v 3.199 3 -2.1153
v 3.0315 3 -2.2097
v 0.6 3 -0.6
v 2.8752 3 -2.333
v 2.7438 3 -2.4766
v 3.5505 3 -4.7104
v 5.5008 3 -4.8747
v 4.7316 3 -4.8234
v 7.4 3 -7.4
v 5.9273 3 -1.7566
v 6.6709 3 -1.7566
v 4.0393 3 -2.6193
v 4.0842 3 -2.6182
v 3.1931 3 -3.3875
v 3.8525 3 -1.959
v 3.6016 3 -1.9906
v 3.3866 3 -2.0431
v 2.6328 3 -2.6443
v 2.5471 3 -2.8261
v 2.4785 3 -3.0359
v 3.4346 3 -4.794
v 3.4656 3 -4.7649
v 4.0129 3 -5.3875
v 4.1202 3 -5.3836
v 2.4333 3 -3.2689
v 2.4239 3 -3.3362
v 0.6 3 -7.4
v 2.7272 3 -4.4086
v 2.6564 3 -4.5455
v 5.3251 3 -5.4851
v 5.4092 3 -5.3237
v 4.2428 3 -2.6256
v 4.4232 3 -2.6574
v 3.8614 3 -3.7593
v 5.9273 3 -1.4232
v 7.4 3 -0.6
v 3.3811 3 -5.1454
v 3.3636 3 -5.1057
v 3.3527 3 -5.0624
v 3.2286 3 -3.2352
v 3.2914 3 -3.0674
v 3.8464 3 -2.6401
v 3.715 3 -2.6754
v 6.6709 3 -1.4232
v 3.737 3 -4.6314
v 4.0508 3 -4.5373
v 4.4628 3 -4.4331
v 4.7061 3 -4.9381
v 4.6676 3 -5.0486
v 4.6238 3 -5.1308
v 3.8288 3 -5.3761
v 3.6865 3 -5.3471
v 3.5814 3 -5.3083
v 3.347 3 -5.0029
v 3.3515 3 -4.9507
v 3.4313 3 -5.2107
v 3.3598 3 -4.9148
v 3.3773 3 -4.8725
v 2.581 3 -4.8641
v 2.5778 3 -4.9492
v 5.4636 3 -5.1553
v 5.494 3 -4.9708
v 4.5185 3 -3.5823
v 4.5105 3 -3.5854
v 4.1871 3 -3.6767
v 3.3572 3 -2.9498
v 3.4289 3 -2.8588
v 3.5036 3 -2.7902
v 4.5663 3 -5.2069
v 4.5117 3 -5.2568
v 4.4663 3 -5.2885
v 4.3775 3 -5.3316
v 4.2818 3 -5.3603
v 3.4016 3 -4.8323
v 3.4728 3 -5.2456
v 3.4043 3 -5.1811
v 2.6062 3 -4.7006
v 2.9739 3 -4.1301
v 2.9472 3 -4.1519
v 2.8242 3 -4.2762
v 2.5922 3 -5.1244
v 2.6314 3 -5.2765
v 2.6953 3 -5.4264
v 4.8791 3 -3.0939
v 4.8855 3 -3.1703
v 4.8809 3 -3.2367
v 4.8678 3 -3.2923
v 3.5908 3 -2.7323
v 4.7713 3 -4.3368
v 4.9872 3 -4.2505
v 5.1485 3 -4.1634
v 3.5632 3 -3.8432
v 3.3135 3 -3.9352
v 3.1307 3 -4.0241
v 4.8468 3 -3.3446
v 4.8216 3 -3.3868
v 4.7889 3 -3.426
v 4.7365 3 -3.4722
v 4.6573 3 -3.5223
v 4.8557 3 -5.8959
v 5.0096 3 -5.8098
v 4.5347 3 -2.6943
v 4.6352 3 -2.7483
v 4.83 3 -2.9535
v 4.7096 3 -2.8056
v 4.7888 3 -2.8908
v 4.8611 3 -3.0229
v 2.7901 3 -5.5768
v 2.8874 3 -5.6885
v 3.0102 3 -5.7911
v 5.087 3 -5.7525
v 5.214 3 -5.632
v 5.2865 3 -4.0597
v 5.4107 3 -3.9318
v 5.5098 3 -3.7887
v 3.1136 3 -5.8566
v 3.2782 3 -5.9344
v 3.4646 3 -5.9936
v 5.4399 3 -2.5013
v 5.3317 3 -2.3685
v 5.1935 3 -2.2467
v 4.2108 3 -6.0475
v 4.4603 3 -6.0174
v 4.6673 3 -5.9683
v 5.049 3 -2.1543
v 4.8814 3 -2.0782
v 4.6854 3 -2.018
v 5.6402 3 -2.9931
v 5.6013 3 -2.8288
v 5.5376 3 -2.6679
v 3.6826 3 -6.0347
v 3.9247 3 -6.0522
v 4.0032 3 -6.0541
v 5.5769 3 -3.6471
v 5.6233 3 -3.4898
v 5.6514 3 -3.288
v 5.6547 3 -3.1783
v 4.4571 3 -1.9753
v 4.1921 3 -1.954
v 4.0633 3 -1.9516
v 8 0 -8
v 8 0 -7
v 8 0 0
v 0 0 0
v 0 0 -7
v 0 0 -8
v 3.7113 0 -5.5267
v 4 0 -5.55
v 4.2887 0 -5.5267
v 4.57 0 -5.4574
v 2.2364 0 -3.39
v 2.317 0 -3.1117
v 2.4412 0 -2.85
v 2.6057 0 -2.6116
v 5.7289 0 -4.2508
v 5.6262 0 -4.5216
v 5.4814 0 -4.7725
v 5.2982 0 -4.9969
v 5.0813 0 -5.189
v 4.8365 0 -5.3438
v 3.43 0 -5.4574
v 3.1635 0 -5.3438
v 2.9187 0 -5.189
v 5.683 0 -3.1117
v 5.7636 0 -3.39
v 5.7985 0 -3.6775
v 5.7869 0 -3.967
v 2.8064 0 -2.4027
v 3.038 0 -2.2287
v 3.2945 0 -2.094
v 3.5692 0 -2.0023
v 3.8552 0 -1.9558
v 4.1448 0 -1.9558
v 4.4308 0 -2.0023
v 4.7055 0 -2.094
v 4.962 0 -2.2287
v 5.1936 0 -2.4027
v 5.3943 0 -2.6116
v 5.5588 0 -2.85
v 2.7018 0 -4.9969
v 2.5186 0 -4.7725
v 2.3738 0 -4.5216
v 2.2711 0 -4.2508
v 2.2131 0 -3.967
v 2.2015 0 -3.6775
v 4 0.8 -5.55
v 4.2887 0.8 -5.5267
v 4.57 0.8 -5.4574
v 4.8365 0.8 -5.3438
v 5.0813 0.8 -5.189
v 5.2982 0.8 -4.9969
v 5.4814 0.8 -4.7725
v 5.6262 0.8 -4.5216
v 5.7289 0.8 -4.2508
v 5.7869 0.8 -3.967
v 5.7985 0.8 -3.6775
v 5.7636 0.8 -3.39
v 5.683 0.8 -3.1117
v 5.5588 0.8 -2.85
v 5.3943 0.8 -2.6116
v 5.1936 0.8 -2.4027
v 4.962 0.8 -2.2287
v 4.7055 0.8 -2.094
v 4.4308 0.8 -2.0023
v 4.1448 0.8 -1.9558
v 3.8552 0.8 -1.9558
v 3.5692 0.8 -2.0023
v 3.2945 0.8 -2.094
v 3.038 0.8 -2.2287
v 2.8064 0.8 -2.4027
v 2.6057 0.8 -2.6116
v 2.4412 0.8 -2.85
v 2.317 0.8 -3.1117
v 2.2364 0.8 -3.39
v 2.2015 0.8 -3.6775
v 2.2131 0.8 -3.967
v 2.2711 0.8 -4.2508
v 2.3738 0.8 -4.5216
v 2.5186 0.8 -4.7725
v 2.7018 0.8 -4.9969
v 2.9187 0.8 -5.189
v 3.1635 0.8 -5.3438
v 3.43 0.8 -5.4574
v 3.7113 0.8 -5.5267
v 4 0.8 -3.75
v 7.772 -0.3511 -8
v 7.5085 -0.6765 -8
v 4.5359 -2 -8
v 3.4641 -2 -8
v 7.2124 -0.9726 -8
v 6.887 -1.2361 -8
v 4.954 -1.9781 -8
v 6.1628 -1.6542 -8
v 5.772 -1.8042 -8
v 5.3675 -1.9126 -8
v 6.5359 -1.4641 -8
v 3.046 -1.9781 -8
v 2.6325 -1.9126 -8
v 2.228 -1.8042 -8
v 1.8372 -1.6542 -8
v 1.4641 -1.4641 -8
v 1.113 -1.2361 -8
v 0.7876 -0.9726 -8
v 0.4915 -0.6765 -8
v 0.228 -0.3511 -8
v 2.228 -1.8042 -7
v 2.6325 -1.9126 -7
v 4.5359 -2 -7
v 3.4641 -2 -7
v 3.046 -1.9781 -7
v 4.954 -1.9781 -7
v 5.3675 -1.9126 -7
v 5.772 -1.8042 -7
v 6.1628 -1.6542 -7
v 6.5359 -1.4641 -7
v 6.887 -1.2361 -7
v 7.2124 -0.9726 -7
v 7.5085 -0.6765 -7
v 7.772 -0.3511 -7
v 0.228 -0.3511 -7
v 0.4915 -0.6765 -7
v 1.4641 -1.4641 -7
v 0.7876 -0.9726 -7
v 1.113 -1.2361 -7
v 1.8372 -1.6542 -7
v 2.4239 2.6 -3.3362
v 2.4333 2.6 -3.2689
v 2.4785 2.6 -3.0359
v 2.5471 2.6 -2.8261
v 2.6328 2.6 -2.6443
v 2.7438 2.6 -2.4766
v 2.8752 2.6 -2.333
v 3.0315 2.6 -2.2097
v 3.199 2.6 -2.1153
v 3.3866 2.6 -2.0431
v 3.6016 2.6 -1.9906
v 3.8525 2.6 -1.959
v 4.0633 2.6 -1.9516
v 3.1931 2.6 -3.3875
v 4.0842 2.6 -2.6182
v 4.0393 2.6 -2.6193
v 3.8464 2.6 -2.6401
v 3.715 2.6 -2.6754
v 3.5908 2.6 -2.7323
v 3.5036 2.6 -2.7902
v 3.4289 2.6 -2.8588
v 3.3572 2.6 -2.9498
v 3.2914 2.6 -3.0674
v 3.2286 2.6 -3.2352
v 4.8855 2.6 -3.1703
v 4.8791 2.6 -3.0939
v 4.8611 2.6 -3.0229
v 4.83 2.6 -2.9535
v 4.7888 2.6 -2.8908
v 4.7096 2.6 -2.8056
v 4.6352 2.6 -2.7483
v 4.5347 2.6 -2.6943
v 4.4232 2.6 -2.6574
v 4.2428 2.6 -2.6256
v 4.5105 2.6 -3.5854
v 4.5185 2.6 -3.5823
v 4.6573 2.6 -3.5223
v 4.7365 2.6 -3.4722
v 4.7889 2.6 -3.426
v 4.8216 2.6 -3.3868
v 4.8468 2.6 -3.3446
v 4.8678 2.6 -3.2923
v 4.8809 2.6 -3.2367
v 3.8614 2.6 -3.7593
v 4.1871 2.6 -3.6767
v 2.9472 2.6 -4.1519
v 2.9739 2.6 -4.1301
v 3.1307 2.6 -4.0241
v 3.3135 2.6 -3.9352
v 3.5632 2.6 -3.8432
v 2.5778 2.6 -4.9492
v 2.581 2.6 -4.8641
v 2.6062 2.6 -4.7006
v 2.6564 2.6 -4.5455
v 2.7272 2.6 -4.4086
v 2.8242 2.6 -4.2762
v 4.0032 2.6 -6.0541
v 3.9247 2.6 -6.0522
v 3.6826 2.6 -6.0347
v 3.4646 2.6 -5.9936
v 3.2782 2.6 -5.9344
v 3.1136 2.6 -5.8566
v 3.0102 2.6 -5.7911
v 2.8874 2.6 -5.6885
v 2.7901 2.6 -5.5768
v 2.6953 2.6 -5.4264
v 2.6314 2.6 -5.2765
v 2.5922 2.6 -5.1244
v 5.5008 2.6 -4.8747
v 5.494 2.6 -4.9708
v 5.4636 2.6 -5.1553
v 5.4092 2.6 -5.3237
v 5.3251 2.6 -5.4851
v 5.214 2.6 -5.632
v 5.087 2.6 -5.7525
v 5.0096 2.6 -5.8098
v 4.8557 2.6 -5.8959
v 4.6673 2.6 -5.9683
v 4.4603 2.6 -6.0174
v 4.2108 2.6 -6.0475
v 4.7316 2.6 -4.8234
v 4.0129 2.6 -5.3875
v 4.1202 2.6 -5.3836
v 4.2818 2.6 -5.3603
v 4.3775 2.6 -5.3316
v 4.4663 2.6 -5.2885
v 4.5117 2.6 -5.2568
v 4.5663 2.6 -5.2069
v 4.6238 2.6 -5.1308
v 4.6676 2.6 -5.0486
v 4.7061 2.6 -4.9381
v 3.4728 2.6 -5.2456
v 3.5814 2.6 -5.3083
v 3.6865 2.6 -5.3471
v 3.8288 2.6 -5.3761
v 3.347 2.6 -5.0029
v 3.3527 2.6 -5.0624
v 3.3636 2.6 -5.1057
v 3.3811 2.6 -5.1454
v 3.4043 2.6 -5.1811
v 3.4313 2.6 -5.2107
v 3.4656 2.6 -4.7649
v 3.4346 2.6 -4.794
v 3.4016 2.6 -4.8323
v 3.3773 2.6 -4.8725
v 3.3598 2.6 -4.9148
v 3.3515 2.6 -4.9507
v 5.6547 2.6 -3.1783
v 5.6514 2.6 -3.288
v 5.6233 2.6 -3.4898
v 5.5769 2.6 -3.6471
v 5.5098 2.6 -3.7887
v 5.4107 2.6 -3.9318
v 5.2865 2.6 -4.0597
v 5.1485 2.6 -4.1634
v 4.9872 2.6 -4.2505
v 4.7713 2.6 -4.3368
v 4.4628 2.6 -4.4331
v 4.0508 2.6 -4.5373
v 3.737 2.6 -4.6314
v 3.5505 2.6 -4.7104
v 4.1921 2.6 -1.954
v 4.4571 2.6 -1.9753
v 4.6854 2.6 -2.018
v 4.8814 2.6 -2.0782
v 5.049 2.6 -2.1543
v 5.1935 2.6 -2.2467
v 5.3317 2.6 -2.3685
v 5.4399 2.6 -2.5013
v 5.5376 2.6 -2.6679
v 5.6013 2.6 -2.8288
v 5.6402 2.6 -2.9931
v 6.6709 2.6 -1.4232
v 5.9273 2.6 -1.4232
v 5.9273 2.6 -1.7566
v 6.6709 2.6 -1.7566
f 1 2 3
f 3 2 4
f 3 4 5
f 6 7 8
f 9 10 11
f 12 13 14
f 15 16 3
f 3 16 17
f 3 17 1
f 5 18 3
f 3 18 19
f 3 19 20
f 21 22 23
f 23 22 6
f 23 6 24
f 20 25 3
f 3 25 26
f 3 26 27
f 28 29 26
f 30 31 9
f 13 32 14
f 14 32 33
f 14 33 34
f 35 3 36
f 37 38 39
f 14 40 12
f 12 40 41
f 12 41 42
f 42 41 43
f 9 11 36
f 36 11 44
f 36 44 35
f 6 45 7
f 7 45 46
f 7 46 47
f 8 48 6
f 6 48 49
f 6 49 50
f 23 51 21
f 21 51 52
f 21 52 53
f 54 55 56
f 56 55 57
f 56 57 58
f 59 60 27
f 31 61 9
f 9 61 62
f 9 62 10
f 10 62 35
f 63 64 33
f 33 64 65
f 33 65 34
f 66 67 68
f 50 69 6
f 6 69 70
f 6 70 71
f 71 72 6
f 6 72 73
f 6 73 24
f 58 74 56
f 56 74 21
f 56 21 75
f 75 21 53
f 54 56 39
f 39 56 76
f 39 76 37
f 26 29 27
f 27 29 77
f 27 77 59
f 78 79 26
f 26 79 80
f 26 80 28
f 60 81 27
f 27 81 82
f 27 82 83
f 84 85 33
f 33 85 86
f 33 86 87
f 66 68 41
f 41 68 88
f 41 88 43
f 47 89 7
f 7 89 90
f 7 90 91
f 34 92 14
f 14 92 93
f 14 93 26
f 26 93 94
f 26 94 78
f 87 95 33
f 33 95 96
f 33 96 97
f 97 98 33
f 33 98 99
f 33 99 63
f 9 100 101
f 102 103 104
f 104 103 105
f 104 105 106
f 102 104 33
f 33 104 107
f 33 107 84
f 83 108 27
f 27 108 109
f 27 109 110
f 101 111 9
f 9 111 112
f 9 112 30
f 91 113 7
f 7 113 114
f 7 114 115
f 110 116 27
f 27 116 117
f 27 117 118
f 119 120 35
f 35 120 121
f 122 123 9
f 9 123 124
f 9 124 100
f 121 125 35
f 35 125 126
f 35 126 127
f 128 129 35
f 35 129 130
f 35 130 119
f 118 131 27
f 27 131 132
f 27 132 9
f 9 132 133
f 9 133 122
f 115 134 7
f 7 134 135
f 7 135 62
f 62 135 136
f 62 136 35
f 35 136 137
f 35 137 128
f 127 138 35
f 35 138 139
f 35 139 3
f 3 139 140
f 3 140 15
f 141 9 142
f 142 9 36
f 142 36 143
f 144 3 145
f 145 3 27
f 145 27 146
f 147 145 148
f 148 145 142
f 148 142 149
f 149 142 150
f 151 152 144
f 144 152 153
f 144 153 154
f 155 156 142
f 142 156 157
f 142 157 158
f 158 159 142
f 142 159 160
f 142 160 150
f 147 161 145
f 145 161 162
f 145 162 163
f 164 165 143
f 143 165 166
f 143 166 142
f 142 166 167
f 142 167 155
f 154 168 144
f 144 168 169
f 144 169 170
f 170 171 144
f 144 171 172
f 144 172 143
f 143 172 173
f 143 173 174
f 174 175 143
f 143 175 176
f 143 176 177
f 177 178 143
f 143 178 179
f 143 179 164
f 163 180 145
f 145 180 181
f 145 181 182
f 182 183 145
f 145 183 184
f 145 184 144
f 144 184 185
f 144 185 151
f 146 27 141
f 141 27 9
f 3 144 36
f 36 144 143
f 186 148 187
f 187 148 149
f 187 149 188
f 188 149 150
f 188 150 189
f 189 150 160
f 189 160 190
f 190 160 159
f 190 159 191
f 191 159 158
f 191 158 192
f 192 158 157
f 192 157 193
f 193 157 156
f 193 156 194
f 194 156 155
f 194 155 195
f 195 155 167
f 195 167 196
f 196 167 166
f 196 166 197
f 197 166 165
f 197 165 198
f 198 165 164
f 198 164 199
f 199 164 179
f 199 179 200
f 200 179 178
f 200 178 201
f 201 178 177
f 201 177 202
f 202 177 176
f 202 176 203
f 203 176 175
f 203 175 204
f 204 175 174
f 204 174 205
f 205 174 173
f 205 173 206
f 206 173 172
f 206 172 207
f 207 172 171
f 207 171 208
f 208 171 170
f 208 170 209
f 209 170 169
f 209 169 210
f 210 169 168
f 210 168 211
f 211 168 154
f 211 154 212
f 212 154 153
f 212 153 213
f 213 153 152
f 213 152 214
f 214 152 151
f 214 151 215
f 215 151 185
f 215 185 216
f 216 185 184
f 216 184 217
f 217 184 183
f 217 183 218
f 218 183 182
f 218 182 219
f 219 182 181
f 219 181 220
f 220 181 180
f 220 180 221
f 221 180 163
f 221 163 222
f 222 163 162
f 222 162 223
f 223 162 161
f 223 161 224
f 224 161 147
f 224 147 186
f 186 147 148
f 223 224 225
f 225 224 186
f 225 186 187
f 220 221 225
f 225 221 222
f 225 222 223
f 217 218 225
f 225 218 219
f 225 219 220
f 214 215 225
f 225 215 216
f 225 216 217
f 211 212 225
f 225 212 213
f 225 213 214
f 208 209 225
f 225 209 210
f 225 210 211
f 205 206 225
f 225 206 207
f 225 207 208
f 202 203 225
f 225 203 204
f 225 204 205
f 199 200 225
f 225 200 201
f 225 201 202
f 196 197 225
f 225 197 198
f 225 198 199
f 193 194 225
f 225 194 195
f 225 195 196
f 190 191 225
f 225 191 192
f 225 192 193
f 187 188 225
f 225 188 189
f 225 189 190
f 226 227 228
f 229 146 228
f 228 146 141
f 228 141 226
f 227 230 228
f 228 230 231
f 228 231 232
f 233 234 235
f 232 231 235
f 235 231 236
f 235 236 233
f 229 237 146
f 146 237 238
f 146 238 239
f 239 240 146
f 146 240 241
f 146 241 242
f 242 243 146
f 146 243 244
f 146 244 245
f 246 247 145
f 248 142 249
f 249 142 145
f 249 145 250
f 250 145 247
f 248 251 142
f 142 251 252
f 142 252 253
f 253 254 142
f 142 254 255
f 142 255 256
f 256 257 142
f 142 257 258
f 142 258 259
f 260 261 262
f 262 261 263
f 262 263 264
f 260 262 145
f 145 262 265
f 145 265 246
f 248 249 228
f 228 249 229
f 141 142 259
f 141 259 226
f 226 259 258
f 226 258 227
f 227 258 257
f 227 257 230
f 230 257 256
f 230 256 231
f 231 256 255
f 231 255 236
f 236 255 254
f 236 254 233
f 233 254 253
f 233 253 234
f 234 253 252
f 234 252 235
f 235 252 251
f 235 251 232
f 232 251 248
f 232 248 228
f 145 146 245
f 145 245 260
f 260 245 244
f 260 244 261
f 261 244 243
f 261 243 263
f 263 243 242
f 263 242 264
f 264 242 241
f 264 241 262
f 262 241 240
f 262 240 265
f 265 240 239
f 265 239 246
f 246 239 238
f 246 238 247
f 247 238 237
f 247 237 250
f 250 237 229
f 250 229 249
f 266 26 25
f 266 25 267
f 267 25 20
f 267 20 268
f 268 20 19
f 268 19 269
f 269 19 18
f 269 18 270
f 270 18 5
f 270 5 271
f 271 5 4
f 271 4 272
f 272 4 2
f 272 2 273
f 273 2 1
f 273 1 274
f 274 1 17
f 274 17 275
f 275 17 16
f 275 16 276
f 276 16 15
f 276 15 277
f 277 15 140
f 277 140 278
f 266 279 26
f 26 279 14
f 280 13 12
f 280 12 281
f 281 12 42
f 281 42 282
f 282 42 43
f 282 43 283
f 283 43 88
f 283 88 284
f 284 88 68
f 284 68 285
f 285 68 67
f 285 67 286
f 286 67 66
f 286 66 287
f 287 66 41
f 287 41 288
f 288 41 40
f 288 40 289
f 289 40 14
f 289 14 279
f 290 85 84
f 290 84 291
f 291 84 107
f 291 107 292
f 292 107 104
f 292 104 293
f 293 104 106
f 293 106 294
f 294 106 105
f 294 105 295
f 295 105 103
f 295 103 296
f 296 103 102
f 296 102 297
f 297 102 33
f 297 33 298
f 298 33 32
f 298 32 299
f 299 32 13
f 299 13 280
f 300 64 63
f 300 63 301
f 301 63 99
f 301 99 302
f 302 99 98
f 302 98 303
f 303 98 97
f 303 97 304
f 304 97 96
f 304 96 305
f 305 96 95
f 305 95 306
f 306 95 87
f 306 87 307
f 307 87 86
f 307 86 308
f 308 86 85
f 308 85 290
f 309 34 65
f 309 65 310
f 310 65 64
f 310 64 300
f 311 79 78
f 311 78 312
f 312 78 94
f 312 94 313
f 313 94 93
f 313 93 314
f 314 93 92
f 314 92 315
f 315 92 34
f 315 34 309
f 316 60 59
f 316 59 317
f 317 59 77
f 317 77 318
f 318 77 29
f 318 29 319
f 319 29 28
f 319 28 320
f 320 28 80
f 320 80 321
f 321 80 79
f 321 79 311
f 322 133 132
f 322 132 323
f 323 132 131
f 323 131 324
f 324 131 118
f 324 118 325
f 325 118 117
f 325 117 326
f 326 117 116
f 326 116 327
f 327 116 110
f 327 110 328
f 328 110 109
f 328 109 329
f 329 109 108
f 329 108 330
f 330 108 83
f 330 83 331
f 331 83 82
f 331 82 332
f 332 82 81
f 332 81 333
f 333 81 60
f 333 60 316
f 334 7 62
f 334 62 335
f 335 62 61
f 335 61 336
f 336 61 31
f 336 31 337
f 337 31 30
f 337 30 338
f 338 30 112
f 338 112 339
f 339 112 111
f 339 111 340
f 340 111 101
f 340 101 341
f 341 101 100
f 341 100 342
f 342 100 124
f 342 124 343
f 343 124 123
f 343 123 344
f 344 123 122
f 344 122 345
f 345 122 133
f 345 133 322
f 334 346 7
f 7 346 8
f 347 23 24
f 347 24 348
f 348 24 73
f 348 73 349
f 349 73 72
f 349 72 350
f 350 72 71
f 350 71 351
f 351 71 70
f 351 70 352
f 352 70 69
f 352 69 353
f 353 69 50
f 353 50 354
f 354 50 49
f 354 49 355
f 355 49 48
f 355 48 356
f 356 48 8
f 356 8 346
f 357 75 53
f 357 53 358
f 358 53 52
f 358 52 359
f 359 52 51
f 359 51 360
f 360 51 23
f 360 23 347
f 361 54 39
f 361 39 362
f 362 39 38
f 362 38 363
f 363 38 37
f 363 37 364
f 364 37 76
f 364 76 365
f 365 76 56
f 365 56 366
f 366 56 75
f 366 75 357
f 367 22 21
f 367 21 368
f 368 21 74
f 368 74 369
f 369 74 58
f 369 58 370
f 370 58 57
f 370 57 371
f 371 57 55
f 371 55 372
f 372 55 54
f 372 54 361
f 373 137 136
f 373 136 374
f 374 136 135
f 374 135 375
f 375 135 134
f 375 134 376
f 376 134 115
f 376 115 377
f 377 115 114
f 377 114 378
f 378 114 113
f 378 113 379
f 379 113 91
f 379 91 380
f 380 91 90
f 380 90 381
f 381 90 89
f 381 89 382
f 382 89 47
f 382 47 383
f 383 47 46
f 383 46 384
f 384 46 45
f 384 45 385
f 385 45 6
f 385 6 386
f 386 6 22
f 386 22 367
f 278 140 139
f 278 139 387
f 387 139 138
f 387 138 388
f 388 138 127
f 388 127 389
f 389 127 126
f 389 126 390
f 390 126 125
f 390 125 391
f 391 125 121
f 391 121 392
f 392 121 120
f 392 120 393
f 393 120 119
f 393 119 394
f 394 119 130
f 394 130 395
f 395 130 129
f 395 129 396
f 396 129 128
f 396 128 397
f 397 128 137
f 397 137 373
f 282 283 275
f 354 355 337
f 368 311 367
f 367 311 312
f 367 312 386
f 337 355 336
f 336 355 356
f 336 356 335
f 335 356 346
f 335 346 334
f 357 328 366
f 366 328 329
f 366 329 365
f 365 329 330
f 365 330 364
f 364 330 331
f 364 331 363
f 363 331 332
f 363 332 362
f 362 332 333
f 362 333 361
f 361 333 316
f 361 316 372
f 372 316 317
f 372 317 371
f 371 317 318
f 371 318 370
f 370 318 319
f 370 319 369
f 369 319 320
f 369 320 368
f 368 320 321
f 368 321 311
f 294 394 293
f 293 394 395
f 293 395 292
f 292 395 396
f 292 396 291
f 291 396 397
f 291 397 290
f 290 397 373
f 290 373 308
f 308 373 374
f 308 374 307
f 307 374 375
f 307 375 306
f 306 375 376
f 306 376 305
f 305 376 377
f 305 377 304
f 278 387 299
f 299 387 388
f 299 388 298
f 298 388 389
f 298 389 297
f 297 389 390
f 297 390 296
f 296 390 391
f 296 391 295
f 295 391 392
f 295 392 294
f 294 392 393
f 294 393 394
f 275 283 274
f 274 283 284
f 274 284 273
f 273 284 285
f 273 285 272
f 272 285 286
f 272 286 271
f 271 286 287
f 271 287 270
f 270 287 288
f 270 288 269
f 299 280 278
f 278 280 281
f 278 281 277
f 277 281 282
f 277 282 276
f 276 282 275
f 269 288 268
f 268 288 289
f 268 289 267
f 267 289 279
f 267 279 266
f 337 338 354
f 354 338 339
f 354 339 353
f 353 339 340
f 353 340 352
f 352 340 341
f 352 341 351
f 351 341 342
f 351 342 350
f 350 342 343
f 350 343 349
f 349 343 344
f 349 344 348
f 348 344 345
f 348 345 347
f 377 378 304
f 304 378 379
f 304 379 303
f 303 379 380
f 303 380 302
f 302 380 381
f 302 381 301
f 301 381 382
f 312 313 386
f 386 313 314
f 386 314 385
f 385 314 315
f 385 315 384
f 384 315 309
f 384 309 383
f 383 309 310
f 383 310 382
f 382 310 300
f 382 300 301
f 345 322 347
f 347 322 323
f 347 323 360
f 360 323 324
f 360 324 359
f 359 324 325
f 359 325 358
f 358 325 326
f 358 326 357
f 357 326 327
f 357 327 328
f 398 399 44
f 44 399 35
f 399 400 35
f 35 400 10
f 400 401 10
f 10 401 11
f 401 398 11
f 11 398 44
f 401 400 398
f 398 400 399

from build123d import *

# Parameters (mm, degrees)
SKETCH1_W               = 8
SKETCH1_H               = 8
BOSS_EXTRUDE1_DEPTH     = 3
CUT_EXTRUDE1_DEPTH      = 12.704699911
CUT_EXTRUDE1_DEPTH_BACK = 12.704699911
CUT_EXTRUDE2_DEPTH      = 11
SKETCH4_R               = 1.8
CUT_EXTRUDE3_DEPTH      = 0.8
SKETCH5_W               = 8
SKETCH5_H               = 1
BOSS_EXTRUDE2_DEPTH     = 2
FILLET1_R               = 4
CUT_EXTRUDE4_DEPTH      = 0.4
SKETCH7_W               = 0.743589743
SKETCH7_H               = 0.333333333
CUT_EXTRUDE5_DEPTH      = 0.4


with BuildPart() as part:
    # Sketch1 → Boss-Extrude1 (new body)
    with BuildSketch(Plane(origin=(0, 0, 0), x_dir=(1, 0, 0), z_dir=(0, 1, 0))):
        with Locations((4, 4)):
            Rectangle(SKETCH1_W, SKETCH1_H)
    extrude(amount=BOSS_EXTRUDE1_DEPTH)

    # Sketch2 → Cut-Extrude1 (cut, two sides: drawn at the far end of the back side and taken through both)
    with BuildSketch(Plane.XY.offset(-CUT_EXTRUDE1_DEPTH_BACK)):
        Polygon((0, 0), (0.6, 3), (0, 3), align=None)
        Polygon((8, 0), (7.4, 3), (8, 3), align=None)
    extrude(amount=CUT_EXTRUDE1_DEPTH + CUT_EXTRUDE1_DEPTH_BACK, mode=Mode.SUBTRACT)

    # Sketch3 → Cut-Extrude2 (cut)
    with BuildSketch(Plane(origin=(0, 0, 0), x_dir=(0, 0, -1), z_dir=(1, 0, 0))):
        Polygon((0, 0), (0.6, 3), (0, 3), align=None)
        Polygon((8, 3), (7.4, 3), (8, 0), align=None)
    extrude(amount=CUT_EXTRUDE2_DEPTH, mode=Mode.SUBTRACT)

    # Sketch4 → Cut-Extrude3 (cut)
    with BuildSketch(Plane.XZ):
        with Locations(Location((4, -3.75, 0), (0, 0, 270))):
            Circle(SKETCH4_R)
    extrude(amount=-CUT_EXTRUDE3_DEPTH, mode=Mode.SUBTRACT)

    # Sketch5 → Boss-Extrude2 (add)
    with BuildSketch(Plane.XZ):
        with Locations((4, -7.5)):
            Rectangle(SKETCH5_W, SKETCH5_H)
    extrude(amount=BOSS_EXTRUDE2_DEPTH)

    # Fillet1
    # the kernel refuses this fillet: 4 mm, written as the material it takes off along each edge
    with BuildSketch(Plane(origin=(8, -2, -16.660254038), x_dir=(0, 1, 0), z_dir=(0, 0, 1)), Plane(origin=(0, -2, 1.660254038), x_dir=(0, 1, 0), z_dir=(0, 0, -1))) as fillet1_piece_1:
        with BuildLine():
            CenterArc((4, 3.464101615), FILLET1_R, 180, 60)
            Line((0, 3.464101615), (-0.08, 3.464101615))
            Line((-0.08, 3.464101615), (-0.08, 0))
            Line((-0.08, 0), (0, -0.08))
            ThreePointArc((0, -0.08), (1, -0.08), (1.96, -0.069282032))
            Line((1.96, -0.069282032), (2, 0))
        make_face()
    extrude(amount=18.320508076, mode=Mode.SUBTRACT)

    # Sketch6 → Cut-Extrude4 (cut)
    with BuildSketch(Plane(origin=(0, 3, 0), x_dir=(1, 0, 0), z_dir=(0, 1, 0))):
        with BuildLine():
            Line((2.423916505, 3.336189685), (3.193147274, 3.387471736))
            add(Edge.make_bspline(
                [(3.193147274, 3.387471736), (3.199275518, 3.35528983), (3.211179242, 3.292778523), (3.237627081, 3.203691377), (3.266738832, 3.12063689), (3.30152897, 3.044505684), (3.339615284, 2.973890515), (3.38412658, 2.910803039), (3.431957638, 2.853229033), (3.485476185, 2.803236311), (3.543783948, 2.759451994), (3.607171876, 2.722111271), (3.674953108, 2.6897922), (3.747293374, 2.663178469), (3.824938253, 2.64331119), (3.907211345, 2.629176798), (3.994230643, 2.620125524), (4.053701404, 2.618879435), (4.084172915, 2.618240967)],
                knots=[0, 0, 0, 0, 1.204560339, 2.339781841, 3.415289417, 4.440034832, 5.416475564, 6.362424008, 7.275913008, 8.16578645, 9.05021719, 9.95355393, 10.867835453, 11.809845306, 12.784702352, 13.812224031, 14.87903166, 16, 16, 16, 16], degree=3))
            add(Edge.make_bspline(
                [(4.084172915, 2.618240967), (4.116246108, 2.618590883), (4.178630121, 2.619271489), (4.269031453, 2.627715), (4.353560804, 2.639811238), (4.431471751, 2.6589593), (4.504219207, 2.680373377), (4.569996427, 2.709670116), (4.629867843, 2.743459668), (4.683679212, 2.781802056), (4.730640445, 2.824326515), (4.771724475, 2.86872067), (4.807505951, 2.914025405), (4.835668504, 2.962251146), (4.858460082, 3.011447443), (4.873523718, 3.063081907), (4.883700097, 3.1159689), (4.884867031, 3.152113555), (4.885454967, 3.1703243)],
                knots=[0, 0, 0, 0, 1.417779877, 2.757654889, 4.012140507, 5.189587551, 6.302846416, 7.360586765, 8.365575446, 9.33904572, 10.275781718, 11.161696098, 12.012180333, 12.822428111, 13.625933072, 14.403138519, 15.195454004, 16, 16, 16, 16], degree=3))
            add(Edge.make_bspline(
                [(4.885454967, 3.1703243), (4.884733913, 3.193140887), (4.883323278, 3.237778199), (4.866340641, 3.301592127), (4.840872442, 3.360713887), (4.802526135, 3.41427025), (4.750979261, 3.463212961), (4.685226085, 3.508997669), (4.603431212, 3.550186), (4.542750055, 3.573160928), (4.510454967, 3.585388403)],
                knots=[0, 0, 0, 0, 0.90494901, 1.770400303, 2.607161909, 3.452839393, 4.36912122, 5.420987164, 6.627424851, 8, 8, 8, 8], degree=3))
            add(Edge.make_bspline(
                [(4.510454967, 3.585388403), (4.496597999, 3.590031937), (4.465588357, 3.600423411), (4.4126892, 3.615282239), (4.348970759, 3.633836968), (4.273512264, 3.654927379), (4.186339087, 3.676497317), (4.088424838, 3.703069034), (3.978575834, 3.729510064), (3.901725338, 3.749028827), (3.861416505, 3.759266608)],
                knots=[0, 0, 0, 0, 0.521821638, 1.167752076, 1.961721917, 2.891982557, 3.96540661, 5.168436773, 6.514817513, 8, 8, 8, 8], degree=3))
            add(Edge.make_bspline(
                [(3.861416505, 3.759266608), (3.808922441, 3.772373151), (3.707643728, 3.797660082), (3.563197092, 3.84264374), (3.430159098, 3.887337495), (3.309810688, 3.935832618), (3.200824367, 3.984842463), (3.104963023, 4.037807847), (3.02022624, 4.091978089), (2.970848149, 4.132466251), (2.947153685, 4.151894813)],
                knots=[0, 0, 0, 0, 1.293880989, 2.496331788, 3.617634808, 4.64976062, 5.598842568, 6.473791081, 7.267636666, 8, 8, 8, 8], degree=3))
            add(Edge.make_bspline(
                [(2.947153685, 4.151894813), (2.917769469, 4.179407128), (2.860158996, 4.233347566), (2.784323751, 4.321982057), (2.720601495, 4.415610216), (2.668151102, 4.513540942), (2.627765291, 4.616338017), (2.599140348, 4.723313361), (2.580613245, 4.834746169), (2.578722682, 4.91063455), (2.577762659, 4.949170454)],
                knots=[0, 0, 0, 0, 1.064429417, 2.086912298, 3.078678339, 4.055528992, 5.020032834, 5.993708893, 6.981211098, 8, 8, 8, 8], degree=3))
            add(Edge.make_bspline(
                [(2.577762659, 4.949170454), (2.579632311, 4.999035454), (2.583341142, 5.097952729), (2.617353538, 5.24334762), (2.670335558, 5.383642492), (2.731782138, 5.495041815), (2.790819043, 5.579315825), (2.839844896, 5.639790083), (2.893704531, 5.696388175), (2.953135712, 5.747729494), (3.015931612, 5.796821395), (3.084525186, 5.840415592), (3.156971597, 5.881478913), (3.261809808, 5.93015757), (3.404151332, 5.980885512), (3.589345301, 6.023645948), (3.790984862, 6.049350493), (3.930782191, 6.052503897), (4.003243428, 6.054138403)],
                knots=[0, 0, 0, 0, 1.180131776, 2.341029169, 3.518901375, 4.725685298, 5.343762192, 5.955650671, 6.568945152, 7.192346361, 7.815201106, 8.455999361, 9.116257477, 9.787318263, 11.192748436, 12.688084276, 14.283332633, 16, 16, 16, 16], degree=3))
            add(Edge.make_bspline(
                [(4.003243428, 6.054138403), (4.062574751, 6.053344994), (4.177972905, 6.051801831), (4.345255933, 6.036197125), (4.501507358, 6.011910245), (4.646178875, 5.977046542), (4.779337891, 5.930982439), (4.901500568, 5.876111383), (5.012563098, 5.81096567), (5.111173405, 5.735171454), (5.199025737, 5.651613191), (5.275662846, 5.560343317), (5.341377732, 5.462514514), (5.396594511, 5.358198276), (5.439956101, 5.246858263), (5.471803478, 5.128633406), (5.492867609, 5.003801978), (5.498147397, 4.918266237), (5.500839582, 4.874651223)],
                knots=[0, 0, 0, 0, 1.325124071, 2.577337985, 3.749592149, 4.855247722, 5.896868755, 6.892903601, 7.842551483, 8.766257401, 9.665194363, 10.546067736, 11.423174165, 12.293291263, 13.177512979, 14.086532529, 15.024315359, 16, 16, 16, 16], degree=3))
            Line((5.500839582, 4.874651223), (4.731608813, 4.823369172))
            add(Edge.make_bspline(
                [(4.731608813, 4.823369172), (4.727171315, 4.847490186), (4.718523093, 4.894499533), (4.699719489, 4.96182647), (4.678509937, 5.024096207), (4.653685255, 5.081308344), (4.623700039, 5.13243816), (4.591067506, 5.179094223), (4.554887475, 5.220654869), (4.51396201, 5.255982033), (4.469697485, 5.288128305), (4.419251527, 5.313894286), (4.364737876, 5.337799444), (4.30408262, 5.355770261), (4.238450559, 5.370025359), (4.167803464, 5.380593162), (4.091994892, 5.385752959), (4.039841388, 5.386885694), (4.012858813, 5.387471736)],
                knots=[0, 0, 0, 0, 1.151066407, 2.24330871, 3.278475654, 4.238599069, 5.165719782, 6.056502506, 6.909492653, 7.744782051, 8.590364415, 9.471203867, 10.39832458, 11.382154319, 12.435022857, 13.550631277, 14.73277401, 16, 16, 16, 16], degree=3))
            add(Edge.make_bspline(
                [(4.012858813, 5.387471736), (3.984804304, 5.386954358), (3.930223002, 5.385947775), (3.850683499, 5.379770524), (3.776069477, 5.368367912), (3.706014485, 5.353524542), (3.640612102, 5.333331162), (3.580000346, 5.308708643), (3.523901913, 5.279720359), (3.489695535, 5.256913378), (3.47279471, 5.245644813)],
                knots=[0, 0, 0, 0, 1.186678824, 2.308736671, 3.37120409, 4.377216403, 5.334874112, 6.262130804, 7.141346615, 8, 8, 8, 8], degree=3))
            add(Edge.make_bspline(
                [(3.47279471, 5.245644813), (3.453453136, 5.230251633), (3.415994509, 5.200439822), (3.3756811, 5.141243702), (3.351412335, 5.074383458), (3.348491314, 5.027102037), (3.346993428, 5.002856352)],
                knots=[0, 0, 0, 0, 1.037857257, 2.010007357, 2.979541333, 4, 4, 4, 4], degree=3))
            add(Edge.make_bspline(
                [(3.346993428, 5.002856352), (3.348218426, 4.980197149), (3.350631475, 4.935562125), (3.374970191, 4.872157107), (3.41239982, 4.813407798), (3.447371668, 4.781494404), (3.465583172, 4.764875582)],
                knots=[0, 0, 0, 0, 0.98538058, 1.941042925, 2.927803204, 4, 4, 4, 4], degree=3))
            add(Edge.make_bspline(
                [(3.465583172, 4.764875582), (3.480036346, 4.754089134), (3.512333176, 4.72998591), (3.571494566, 4.699348433), (3.642903916, 4.666166195), (3.728189187, 4.633726893), (3.826783574, 4.601347807), (3.938693075, 4.567540299), (4.063986517, 4.533278892), (4.199470233, 4.500098399), (4.337024364, 4.467483879), (4.46828848, 4.431827004), (4.590345232, 4.397064309), (4.702628677, 4.360627363), (4.805717615, 4.325156109), (4.899111277, 4.288724577), (4.98345094, 4.253244341), (5.081800337, 4.204456503), (5.193269487, 4.138371404), (5.310101731, 4.042305693), (5.413424942, 3.934321559), (5.485417809, 3.83249997), (5.534873142, 3.744930694), (5.566717158, 3.675127784), (5.59426473, 3.601573118), (5.616688379, 3.524185412), (5.632940128, 3.442855773), (5.646389397, 3.358205559), (5.653260877, 3.269531733), (5.654205671, 3.209062493), (5.654685736, 3.178337121)],
                knots=[0, 0, 0, 0, 0.511875881, 1.143829537, 1.88775736, 2.750598373, 3.734912702, 4.837306479, 6.073130119, 7.42648979, 8.801963576, 10.091065733, 11.292408984, 12.408830014, 13.446061236, 14.39066453, 15.257936293, 16.045629259, 17.510392066, 18.929669597, 20.331293837, 21.746891395, 22.460690638, 23.187651344, 23.925159671, 24.69163991, 25.474819891, 26.281170188, 27.126635539, 28, 28, 28, 28], degree=3))
            add(Edge.make_bspline(
                [(5.654685736, 3.178337121), (5.654025632, 3.150001459), (5.652714728, 3.093729578), (5.643553782, 3.010207902), (5.629386607, 2.928169417), (5.608414322, 2.847511277), (5.580592445, 2.768392154), (5.549267222, 2.689670139), (5.510096795, 2.613061996), (5.465515506, 2.538504273), (5.41634032, 2.466052922), (5.360615699, 2.3992182), (5.301614691, 2.335770341), (5.235567289, 2.279262071), (5.166552067, 2.225117883), (5.091412341, 2.177166881), (5.011908526, 2.133775469), (4.927537931, 2.095267608), (4.838001417, 2.061711489), (4.743415274, 2.031844209), (4.642927337, 2.007400135), (4.537375532, 1.986448484), (4.426373586, 1.970515295), (4.310060277, 1.959390224), (4.188409162, 1.953116354), (4.105547428, 1.952094705), (4.063339582, 1.9515743)],
                knots=[0, 0, 0, 0, 0.900570041, 1.788444861, 2.667795364, 3.545012114, 4.433698372, 5.332345486, 6.235991676, 7.164928091, 8.092777575, 9.015680987, 9.928493428, 10.842962589, 11.775229507, 12.714851019, 13.672254427, 14.652424454, 15.660007982, 16.709910502, 17.803296389, 18.945495772, 20.129342395, 21.366102753, 22.658353839, 24, 24, 24, 24], degree=3))
            add(Edge.make_bspline(
                [(4.063339582, 1.9515743), (4.002397965, 1.952569276), (3.883743193, 1.954506517), (3.711359118, 1.971846347), (3.549674268, 1.998386209), (3.398951853, 2.0369045), (3.259007654, 2.086353292), (3.129905498, 2.147263285), (3.012269836, 2.219998383), (2.90464369, 2.302794639), (2.808461007, 2.397160809), (2.721973345, 2.501141662), (2.646347447, 2.615673526), (2.58163302, 2.740577261), (2.526193974, 2.875177636), (2.480472858, 3.01953646), (2.446047261, 3.174342245), (2.431421007, 3.281307488), (2.423916505, 3.336189685)],
                knots=[0, 0, 0, 0, 1.217954099, 2.371385517, 3.459848295, 4.490682126, 5.476952527, 6.422732854, 7.338496285, 8.236688651, 9.131557988, 10.026443255, 10.935708282, 11.869506048, 12.834296687, 13.842423496, 14.892981177, 16, 16, 16, 16], degree=3))
        make_face()
    extrude(amount=-CUT_EXTRUDE4_DEPTH, mode=Mode.SUBTRACT)

    # Sketch7 → Cut-Extrude5 (cut)
    with BuildSketch(Plane(origin=(0, 3, 0), x_dir=(1, 0, 0), z_dir=(0, 1, 0))):
        with Locations((6.299141853, 1.589907949)):
            Rectangle(SKETCH7_W, SKETCH7_H)
    extrude(amount=-CUT_EXTRUDE5_DEPTH, mode=Mode.SUBTRACT)


solid = part.part
